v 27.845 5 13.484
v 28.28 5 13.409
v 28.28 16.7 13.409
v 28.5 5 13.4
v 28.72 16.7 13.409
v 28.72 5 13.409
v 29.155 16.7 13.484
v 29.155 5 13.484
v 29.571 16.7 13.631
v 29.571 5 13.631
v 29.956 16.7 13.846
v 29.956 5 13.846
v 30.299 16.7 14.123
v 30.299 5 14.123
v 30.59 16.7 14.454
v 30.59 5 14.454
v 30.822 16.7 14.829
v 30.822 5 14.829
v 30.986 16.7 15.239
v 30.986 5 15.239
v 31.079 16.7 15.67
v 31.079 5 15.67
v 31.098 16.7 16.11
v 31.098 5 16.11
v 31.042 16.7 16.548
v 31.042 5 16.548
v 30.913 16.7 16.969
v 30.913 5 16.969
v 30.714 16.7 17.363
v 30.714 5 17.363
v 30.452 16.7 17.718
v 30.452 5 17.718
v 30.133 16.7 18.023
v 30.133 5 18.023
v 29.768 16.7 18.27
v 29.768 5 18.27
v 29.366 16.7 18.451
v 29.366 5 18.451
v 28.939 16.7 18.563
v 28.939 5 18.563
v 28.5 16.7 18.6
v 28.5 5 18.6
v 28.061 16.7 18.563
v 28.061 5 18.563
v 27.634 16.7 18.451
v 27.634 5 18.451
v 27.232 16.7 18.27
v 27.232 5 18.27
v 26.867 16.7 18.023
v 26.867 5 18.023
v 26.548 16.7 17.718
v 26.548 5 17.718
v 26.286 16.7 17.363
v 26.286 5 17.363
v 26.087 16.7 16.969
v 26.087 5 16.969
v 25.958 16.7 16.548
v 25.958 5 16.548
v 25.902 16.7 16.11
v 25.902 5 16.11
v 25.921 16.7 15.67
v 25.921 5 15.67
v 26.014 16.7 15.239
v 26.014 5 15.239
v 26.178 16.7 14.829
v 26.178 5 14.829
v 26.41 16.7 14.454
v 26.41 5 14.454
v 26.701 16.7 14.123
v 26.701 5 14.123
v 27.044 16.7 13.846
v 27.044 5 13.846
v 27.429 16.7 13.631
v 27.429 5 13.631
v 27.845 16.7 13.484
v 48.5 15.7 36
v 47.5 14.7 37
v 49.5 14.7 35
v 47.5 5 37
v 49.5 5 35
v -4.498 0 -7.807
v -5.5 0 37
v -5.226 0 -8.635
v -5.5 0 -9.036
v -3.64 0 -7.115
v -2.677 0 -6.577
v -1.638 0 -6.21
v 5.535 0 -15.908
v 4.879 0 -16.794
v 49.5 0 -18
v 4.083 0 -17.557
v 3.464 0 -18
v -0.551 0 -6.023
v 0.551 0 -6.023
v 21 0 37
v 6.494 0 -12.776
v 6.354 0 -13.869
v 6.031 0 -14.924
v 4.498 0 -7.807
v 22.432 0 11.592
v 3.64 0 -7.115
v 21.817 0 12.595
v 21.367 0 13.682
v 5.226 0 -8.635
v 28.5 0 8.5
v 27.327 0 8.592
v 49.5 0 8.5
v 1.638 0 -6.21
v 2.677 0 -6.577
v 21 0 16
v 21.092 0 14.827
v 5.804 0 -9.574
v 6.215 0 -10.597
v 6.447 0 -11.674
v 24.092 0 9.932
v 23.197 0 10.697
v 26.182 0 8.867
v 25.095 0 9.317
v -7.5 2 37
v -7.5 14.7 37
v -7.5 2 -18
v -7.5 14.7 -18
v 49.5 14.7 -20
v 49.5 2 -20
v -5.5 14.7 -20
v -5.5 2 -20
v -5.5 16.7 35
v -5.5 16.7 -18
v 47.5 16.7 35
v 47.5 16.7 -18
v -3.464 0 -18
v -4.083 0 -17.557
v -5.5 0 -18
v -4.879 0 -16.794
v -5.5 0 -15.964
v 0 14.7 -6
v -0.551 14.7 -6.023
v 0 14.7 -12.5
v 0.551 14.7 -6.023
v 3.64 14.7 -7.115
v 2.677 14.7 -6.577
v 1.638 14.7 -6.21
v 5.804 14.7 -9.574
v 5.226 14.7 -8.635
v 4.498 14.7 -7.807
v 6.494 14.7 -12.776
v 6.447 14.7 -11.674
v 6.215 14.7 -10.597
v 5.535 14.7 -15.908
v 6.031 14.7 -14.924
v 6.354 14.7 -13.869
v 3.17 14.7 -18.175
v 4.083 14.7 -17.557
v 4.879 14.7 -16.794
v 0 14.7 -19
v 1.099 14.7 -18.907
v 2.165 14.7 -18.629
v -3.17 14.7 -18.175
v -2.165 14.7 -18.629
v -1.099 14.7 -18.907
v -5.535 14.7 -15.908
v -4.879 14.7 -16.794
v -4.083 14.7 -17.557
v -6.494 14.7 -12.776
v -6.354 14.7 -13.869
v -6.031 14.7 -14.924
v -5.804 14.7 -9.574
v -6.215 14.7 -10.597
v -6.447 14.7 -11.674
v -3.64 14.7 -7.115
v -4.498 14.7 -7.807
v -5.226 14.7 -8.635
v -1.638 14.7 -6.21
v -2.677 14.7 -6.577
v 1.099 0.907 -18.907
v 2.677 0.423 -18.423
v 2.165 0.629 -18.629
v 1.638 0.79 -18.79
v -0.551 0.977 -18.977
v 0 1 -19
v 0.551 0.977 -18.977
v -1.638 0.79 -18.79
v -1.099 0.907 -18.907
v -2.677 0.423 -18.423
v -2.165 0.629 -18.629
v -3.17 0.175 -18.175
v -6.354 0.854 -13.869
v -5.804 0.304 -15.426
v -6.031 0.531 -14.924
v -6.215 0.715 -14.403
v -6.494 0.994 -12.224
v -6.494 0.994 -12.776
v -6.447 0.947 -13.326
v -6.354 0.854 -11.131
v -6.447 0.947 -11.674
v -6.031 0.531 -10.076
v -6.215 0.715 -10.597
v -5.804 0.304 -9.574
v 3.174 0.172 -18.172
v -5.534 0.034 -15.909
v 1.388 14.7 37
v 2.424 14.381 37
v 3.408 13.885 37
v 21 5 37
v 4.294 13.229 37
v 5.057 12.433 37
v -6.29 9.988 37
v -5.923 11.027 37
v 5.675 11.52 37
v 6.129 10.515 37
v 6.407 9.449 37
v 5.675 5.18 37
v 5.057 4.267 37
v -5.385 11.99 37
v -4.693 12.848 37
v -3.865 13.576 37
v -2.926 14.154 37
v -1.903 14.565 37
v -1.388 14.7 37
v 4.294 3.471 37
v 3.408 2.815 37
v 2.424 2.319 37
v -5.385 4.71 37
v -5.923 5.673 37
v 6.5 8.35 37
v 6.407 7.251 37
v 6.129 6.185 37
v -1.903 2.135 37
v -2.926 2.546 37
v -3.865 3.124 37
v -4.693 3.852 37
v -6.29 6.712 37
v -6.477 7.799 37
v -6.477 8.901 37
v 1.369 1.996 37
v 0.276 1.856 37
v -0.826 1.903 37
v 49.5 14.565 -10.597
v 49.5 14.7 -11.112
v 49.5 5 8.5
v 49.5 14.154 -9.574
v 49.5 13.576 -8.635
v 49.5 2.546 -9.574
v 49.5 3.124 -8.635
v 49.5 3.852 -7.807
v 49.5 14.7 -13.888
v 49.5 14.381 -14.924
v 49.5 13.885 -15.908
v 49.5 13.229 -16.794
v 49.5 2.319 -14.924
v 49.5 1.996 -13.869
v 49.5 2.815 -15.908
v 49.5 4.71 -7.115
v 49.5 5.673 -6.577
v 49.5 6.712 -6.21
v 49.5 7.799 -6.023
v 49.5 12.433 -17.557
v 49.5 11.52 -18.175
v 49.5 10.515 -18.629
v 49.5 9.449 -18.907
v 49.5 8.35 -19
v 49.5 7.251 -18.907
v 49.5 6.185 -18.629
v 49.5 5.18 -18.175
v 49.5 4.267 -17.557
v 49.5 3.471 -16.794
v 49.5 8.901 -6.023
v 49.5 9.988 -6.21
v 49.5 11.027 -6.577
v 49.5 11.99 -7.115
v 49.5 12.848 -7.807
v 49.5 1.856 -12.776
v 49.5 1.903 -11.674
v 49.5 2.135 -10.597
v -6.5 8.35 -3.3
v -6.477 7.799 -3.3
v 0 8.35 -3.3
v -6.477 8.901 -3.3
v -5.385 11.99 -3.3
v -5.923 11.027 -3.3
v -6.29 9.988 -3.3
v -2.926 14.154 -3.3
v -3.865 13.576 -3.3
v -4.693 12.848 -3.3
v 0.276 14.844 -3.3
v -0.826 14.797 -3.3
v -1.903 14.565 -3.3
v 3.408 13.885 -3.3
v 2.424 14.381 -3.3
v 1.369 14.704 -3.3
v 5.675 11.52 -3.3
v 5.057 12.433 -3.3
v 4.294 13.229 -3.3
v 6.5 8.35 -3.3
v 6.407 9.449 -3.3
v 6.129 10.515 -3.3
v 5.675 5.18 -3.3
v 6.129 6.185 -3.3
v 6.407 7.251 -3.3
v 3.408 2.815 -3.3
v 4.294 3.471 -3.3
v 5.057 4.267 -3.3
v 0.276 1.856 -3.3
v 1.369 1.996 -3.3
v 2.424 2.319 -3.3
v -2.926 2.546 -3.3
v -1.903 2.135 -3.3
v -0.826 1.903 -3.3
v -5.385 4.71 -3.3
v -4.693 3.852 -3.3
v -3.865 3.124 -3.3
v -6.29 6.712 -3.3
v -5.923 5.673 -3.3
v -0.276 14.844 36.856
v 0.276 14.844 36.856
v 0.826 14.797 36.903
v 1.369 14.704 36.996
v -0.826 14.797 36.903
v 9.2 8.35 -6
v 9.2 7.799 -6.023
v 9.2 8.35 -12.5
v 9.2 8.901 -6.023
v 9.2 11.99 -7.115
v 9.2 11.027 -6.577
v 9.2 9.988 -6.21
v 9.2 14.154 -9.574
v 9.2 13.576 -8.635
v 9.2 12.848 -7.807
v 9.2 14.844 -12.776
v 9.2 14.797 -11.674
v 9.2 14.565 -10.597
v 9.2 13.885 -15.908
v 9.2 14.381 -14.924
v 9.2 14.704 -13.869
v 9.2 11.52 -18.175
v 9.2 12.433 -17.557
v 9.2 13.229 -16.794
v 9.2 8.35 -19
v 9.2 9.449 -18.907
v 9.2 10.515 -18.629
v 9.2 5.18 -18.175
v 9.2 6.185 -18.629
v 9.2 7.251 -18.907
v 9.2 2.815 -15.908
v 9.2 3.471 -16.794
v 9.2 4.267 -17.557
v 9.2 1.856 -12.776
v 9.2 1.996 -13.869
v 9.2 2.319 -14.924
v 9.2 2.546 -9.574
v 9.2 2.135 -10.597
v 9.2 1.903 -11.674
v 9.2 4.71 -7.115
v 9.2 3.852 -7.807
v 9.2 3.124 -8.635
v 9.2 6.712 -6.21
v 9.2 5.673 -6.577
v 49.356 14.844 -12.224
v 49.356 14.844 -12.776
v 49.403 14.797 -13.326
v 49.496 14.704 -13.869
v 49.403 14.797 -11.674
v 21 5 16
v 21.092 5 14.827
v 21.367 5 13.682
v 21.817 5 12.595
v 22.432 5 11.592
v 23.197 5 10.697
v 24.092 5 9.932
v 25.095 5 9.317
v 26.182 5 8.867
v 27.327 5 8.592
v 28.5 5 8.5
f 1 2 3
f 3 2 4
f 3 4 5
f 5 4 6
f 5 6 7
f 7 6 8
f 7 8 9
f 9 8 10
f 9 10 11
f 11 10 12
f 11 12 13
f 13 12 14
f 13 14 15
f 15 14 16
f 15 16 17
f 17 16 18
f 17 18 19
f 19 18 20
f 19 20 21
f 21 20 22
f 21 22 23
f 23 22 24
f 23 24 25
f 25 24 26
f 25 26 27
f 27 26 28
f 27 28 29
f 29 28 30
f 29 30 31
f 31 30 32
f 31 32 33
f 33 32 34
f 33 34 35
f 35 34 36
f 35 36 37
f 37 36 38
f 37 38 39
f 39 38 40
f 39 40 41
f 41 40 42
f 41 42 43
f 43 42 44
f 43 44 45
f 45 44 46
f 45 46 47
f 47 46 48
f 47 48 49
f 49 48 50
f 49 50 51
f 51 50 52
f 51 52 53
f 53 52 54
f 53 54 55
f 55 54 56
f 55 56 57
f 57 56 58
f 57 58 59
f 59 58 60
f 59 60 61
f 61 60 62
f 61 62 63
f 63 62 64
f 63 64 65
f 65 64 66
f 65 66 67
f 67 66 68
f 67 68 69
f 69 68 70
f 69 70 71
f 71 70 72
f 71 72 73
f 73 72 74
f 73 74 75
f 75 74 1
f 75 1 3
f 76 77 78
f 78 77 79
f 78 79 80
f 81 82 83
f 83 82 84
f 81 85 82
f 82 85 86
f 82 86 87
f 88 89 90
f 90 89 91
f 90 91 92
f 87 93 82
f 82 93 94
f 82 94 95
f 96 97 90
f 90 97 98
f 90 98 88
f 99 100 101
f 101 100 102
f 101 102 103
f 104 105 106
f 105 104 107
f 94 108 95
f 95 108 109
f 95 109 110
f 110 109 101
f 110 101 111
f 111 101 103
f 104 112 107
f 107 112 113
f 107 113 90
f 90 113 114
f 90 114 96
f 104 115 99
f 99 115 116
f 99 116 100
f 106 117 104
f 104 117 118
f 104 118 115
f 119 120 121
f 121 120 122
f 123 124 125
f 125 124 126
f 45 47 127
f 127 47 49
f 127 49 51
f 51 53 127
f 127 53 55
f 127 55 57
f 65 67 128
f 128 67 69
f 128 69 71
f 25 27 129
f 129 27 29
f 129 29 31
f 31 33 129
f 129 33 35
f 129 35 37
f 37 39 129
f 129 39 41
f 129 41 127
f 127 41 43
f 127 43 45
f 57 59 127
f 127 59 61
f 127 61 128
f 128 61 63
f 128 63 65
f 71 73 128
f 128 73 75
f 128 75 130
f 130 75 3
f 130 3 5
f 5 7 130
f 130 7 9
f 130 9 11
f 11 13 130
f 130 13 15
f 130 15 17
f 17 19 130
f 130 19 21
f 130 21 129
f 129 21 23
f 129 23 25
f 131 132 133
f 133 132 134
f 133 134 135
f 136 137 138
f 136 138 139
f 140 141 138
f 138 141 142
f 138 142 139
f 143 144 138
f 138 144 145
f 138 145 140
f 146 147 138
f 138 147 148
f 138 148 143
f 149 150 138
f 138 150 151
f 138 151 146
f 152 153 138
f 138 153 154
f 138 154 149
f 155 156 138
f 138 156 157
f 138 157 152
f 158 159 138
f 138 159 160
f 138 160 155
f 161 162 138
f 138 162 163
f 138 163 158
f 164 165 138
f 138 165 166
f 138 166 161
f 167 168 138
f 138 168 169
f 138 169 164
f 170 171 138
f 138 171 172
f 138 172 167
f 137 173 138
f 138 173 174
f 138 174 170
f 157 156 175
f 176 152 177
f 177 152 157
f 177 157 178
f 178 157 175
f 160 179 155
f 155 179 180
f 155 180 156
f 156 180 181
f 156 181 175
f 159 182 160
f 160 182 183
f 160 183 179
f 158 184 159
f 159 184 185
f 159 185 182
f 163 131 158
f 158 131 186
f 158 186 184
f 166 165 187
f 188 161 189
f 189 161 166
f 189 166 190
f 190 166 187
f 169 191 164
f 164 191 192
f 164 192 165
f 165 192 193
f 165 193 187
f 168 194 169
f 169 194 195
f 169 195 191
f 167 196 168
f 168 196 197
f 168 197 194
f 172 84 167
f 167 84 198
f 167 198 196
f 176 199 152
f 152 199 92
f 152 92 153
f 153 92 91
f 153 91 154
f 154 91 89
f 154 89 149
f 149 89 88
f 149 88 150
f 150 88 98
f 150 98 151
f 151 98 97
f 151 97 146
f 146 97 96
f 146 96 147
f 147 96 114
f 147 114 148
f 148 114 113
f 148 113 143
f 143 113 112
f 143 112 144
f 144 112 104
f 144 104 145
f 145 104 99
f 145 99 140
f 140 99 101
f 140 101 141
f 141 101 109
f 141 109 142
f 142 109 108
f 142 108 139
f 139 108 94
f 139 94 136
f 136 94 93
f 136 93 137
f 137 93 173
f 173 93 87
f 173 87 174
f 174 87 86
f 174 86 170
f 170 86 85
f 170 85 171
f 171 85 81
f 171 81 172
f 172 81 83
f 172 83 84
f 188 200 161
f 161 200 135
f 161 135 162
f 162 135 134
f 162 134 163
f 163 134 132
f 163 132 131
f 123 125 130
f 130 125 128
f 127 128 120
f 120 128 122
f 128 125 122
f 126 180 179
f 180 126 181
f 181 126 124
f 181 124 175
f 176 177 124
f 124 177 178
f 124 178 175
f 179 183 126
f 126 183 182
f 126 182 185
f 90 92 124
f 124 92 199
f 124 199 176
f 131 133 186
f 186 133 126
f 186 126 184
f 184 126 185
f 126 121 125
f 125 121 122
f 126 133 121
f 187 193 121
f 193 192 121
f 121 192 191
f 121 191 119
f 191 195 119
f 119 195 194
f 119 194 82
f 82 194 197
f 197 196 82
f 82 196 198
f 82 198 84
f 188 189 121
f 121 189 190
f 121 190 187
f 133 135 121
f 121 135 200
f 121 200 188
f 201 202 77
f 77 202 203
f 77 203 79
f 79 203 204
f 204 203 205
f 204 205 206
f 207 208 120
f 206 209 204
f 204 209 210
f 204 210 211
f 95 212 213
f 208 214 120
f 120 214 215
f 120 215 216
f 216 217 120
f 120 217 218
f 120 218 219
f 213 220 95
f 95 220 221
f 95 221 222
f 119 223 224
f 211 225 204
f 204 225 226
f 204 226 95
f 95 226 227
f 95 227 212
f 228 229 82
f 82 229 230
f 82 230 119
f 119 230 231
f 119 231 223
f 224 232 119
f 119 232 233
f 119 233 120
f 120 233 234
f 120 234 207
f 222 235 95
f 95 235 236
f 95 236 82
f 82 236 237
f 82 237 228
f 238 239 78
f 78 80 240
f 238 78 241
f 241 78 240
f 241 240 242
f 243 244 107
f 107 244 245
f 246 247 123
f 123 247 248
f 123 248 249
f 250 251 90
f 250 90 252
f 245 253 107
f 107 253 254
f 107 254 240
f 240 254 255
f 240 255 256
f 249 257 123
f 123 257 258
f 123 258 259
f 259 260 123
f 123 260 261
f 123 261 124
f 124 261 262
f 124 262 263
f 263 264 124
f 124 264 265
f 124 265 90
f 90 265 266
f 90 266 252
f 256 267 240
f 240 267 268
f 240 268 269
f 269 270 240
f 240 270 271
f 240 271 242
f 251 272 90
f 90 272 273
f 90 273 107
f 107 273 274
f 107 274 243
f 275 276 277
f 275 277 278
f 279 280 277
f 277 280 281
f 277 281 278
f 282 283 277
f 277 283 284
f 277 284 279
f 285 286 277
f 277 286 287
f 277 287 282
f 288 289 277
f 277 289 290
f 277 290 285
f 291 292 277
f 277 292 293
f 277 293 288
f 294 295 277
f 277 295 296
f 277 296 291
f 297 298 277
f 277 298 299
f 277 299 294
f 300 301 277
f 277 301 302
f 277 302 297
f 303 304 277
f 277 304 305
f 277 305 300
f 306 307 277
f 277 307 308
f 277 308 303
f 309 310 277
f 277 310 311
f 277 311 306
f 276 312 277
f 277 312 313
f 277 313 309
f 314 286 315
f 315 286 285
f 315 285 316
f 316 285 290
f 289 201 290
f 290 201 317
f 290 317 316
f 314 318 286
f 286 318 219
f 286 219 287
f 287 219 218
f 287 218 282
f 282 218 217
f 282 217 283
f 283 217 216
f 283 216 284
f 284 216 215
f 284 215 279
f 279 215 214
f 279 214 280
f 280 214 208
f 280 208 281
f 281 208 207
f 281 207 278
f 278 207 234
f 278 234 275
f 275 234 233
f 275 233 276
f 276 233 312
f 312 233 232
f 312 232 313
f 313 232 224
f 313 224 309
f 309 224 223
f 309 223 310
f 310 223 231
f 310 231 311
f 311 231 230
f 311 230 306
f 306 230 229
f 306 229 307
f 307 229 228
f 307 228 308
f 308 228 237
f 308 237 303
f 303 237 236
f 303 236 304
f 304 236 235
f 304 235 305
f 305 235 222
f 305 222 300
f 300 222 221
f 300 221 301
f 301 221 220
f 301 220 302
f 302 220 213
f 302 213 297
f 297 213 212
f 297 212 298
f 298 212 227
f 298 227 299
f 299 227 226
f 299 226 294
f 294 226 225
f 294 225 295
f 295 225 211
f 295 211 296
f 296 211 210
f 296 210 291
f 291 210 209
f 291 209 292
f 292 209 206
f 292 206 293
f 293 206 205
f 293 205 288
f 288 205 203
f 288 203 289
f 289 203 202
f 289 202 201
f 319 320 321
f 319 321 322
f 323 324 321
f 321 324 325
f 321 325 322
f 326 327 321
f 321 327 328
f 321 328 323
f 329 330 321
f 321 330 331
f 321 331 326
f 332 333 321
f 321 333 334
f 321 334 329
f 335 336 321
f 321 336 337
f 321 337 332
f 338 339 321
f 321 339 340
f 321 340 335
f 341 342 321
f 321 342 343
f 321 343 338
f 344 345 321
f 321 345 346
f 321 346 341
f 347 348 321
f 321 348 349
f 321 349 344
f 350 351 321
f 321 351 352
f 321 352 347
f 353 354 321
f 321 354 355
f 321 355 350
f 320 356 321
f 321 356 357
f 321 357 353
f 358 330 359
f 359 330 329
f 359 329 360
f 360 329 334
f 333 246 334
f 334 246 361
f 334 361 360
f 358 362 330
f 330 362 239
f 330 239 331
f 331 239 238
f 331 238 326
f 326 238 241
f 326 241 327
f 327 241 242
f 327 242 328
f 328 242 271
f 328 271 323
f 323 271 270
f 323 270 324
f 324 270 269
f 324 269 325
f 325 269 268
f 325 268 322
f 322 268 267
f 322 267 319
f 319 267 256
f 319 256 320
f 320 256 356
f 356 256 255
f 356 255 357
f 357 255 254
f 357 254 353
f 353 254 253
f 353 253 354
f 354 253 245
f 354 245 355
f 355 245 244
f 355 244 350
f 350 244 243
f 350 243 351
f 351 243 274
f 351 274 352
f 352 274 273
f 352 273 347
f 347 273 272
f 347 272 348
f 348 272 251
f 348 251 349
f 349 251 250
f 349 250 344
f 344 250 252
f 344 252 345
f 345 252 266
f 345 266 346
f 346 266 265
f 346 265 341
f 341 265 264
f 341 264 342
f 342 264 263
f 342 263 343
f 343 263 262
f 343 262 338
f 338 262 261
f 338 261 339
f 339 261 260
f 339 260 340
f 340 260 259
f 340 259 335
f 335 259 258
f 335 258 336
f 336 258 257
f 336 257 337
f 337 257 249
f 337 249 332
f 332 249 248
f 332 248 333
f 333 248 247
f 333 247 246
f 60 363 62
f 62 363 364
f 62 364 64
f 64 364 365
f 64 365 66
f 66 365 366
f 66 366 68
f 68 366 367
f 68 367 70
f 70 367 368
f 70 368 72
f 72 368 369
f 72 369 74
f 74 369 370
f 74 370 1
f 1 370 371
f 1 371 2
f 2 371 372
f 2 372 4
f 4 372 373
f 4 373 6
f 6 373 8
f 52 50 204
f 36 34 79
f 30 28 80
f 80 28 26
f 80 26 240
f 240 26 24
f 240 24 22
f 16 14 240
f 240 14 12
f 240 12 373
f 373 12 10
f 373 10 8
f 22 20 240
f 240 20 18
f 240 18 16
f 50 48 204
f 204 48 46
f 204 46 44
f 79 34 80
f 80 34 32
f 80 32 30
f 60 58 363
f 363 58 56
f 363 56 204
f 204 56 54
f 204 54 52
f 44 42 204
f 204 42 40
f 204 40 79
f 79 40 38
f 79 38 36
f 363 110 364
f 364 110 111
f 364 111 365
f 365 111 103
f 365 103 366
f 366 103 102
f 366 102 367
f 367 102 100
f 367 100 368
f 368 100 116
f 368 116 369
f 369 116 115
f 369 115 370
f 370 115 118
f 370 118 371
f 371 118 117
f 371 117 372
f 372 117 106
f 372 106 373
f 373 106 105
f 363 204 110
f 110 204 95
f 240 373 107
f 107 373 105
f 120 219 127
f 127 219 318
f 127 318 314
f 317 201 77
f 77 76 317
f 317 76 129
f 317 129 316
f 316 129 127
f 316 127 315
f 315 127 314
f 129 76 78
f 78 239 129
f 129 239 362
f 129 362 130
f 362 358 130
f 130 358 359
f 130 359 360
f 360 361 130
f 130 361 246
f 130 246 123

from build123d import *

# Parameters (mm, degrees)
SKETCH1_W           = 15
SKETCH1_H           = 10
SKETCH1_H_2         = 15
SKETCH1_W_2         = 10
BOSS_EXTRUDE1_DEPTH = 16.7
SKETCH2_R           = 6.5
CUT_EXTRUDE1_DEPTH  = 8.3
SKETCH3_R           = 6.5
CUT_EXTRUDE2_DEPTH  = 8.3
SKETCH4_R           = 6.5
CUT_EXTRUDE3_DEPTH  = 14.7
SKETCH5_W           = 42
SKETCH5_H           = 42
SKETCH5_R           = 2.6
BOSS_EXTRUDE3_DEPTH = 16.7
FILLET9_SIZE        = 2
BOSS_EXTRUDE4_START = 32
SKETCH7_R           = 6.5
BOSS_EXTRUDE4_DEPTH = 32
BOSS_EXTRUDE5_START = 32
SKETCH8_R           = 6.5
BOSS_EXTRUDE5_DEPTH = 32
CUT_EXTRUDE4_DEPTH  = 5
CHAMFER1_SIZE       = 2


with BuildPart() as part:
    # Sketch1 → Boss-Extrude1 (new body)
    with BuildSketch(Plane(origin=(0, 0, 0), x_dir=(1, 0, 0), z_dir=(0, 1, 0))):
        Rectangle(SKETCH1_W, SKETCH1_H)
        with Locations((0, 12.5)):
            Rectangle(SKETCH1_W, SKETCH1_H_2)
        with Locations((12.5, 12.5)):
            Rectangle(SKETCH1_W_2, SKETCH1_H_2)
    extrude(amount=BOSS_EXTRUDE1_DEPTH)

    # Sketch2 → Cut-Extrude1 (cut)
    with BuildSketch(Plane.XY.offset(5)):
        with Locations((0, 8.35)):
            Circle(SKETCH2_R)
    extrude(amount=-CUT_EXTRUDE1_DEPTH, mode=Mode.SUBTRACT)

    # Sketch3 → Cut-Extrude2 (cut)
    with BuildSketch(Plane(origin=(17.5, 0, 0), x_dir=(0, 0, -1), z_dir=(1, 0, 0))):
        with Locations((12.5, 8.35)):
            Circle(SKETCH3_R)
    extrude(amount=-CUT_EXTRUDE2_DEPTH, mode=Mode.SUBTRACT)

    # Sketch4 → Cut-Extrude3 (cut)
    with BuildSketch(Plane.XZ):
        with Locations(Location((0, -12.5, 0), (0, 0, 270))):
            Circle(SKETCH4_R)
    extrude(amount=-CUT_EXTRUDE3_DEPTH, mode=Mode.SUBTRACT)

    # Fillet8
    # the kernel refuses this chamfer: 2 mm, written as the material it takes off along each edge
    with BuildSketch(Plane(origin=(-6.166666667, 1.333333333, -18.666666667), x_dir=(0.7071067811865471, 0, -0.707106781186548), z_dir=(-0.5773502691896263, -0.5773502691896255, -0.5773502691896254)), Plane(origin=(-6.166666667, 15.366666667, -18.666666667), x_dir=(0.7071067811865471, 0.7071067811865478, 0), z_dir=(-0.5773502691896261, 0.5773502691896256, -0.5773502691896256))) as fillet8_piece_1:
        Polygon((-1.414213562, -0.816496581), (1.414213562, -0.816496581), (0, 1.632993162), align=None)
    extrude(amount=2.540341184, mode=Mode.SUBTRACT)
    with BuildSketch(Plane(origin=(-7.5, 0, -25.143365976), x_dir=(-0.027495876610586494, 0.9996219169112968, 0), z_dir=(0, 0, 1)), Plane(origin=(22.643365976, 16.7, -20), x_dir=(0, 0.027495876610585647, 0.9996219169112968), z_dir=(-1, 0, 0)), Plane(origin=(-7.5, 16.7, 10.143365976), x_dir=(-0.027495876610586487, -0.9996219169112968, 0), z_dir=(0, 0, -1)), Plane(origin=(22.643365976, 0, -20), x_dir=(0, 0.9996219169112968, -0.02749587661058563), z_dir=(-1, 0, 0))) as fillet8_piece_2:
        with BuildLine():
            Line((2.05734639, 0), (-0.11309431, -2.054235587))
            Line((-0.11309431, -2.054235587), (-0.153079186, -2.053135752))
            ThreePointArc((-0.153079186, -2.053135752), (-0.068258454, -1.026795659), (-0.039984877, 0.001099835))
            Line((-0.039984877, 0.001099835), (0.001099835, 0.039984877))
            ThreePointArc((0.001099835, 0.039984877), (1.028995329, 0.011711299), (2.058446225, 0.039984877))
            Line((2.058446225, 0.039984877), (2.05734639, 0))
        make_face()
    extrude(amount=35.286731952, mode=Mode.SUBTRACT)
    with BuildSketch(Plane(origin=(-7.5, -5.143365976, -20), x_dir=(-0.02749587661058694, 0, 0.9996219169112968), z_dir=(0, 1, 0))) as fillet8_piece_3:
        with BuildLine():
            Line((2.05734639, 0), (-0.11309431, 2.054235587))
            Line((-0.11309431, 2.054235587), (-0.153079186, 2.053135752))
            ThreePointArc((-0.153079186, 2.053135752), (-0.068258454, 1.026795659), (-0.039984877, -0.001099835))
            Line((-0.039984877, -0.001099835), (0.001099835, -0.039984877))
            ThreePointArc((0.001099835, -0.039984877), (1.028995329, -0.011711299), (2.058446225, -0.039984877))
            Line((2.058446225, -0.039984877), (2.05734639, 0))
        make_face()
    extrude(amount=26.986731952, mode=Mode.SUBTRACT)

    # Sketch5 → Boss-Extrude3 (add)
    with BuildSketch(Plane(origin=(0, 16.7, 0), x_dir=(1, 0, 0), z_dir=(0, 1, 0))):
        with Locations((28.5, -16)):
            Rectangle(SKETCH5_W, SKETCH5_H)
        with Locations(Location((28.5, -16, 0), (0, 0, 270))):
            Circle(SKETCH5_R, mode=Mode.SUBTRACT)
    extrude(amount=-BOSS_EXTRUDE3_DEPTH)

    # Fillet9
    fillet9_edges = [part.edges().sort_by_distance(p)[0] for p in [
        (49.5, 8.35, 37),
    ]]
    chamfer(fillet9_edges, length=FILLET9_SIZE)

    # Sketch7 → Boss-Extrude4 (add)
    with BuildSketch(Plane.XY.offset(5).offset(BOSS_EXTRUDE4_START)):
        Polygon((-5.5, 16.7), (-7.5, 14.7), (-7.5, 2), (-5.5, 0), (7.5, 0), (7.5, 16.7), align=None)
        with Locations((0, 8.35)):
            Circle(SKETCH7_R, mode=Mode.SUBTRACT)
    extrude(amount=-BOSS_EXTRUDE4_DEPTH)

    # Sketch8 → Boss-Extrude5 (add)
    with BuildSketch(Plane(origin=(17.5, 0, 0), x_dir=(0, 0, -1), z_dir=(1, 0, 0)).offset(BOSS_EXTRUDE5_START)):
        Polygon((5, 16.7), (5, 0), (18, 0), (20, 2), (20, 14.7), (18, 16.7), align=None)
        with Locations((12.5, 8.35)):
            Circle(SKETCH8_R, mode=Mode.SUBTRACT)
    extrude(amount=-BOSS_EXTRUDE5_DEPTH)

    # Sketch9 → Cut-Extrude4 (cut)
    with BuildSketch(Plane.XZ):
        with BuildLine():
            Line((28.5, 8.5), (49.5, 8.5))
            Line((49.5, 8.5), (49.5, 35))
            Line((49.5, 35), (47.5, 37))
            Line((47.5, 37), (28.5, 37))
            Line((28.5, 37), (21, 37))
            Line((21, 37), (21, 16))
            ThreePointArc((21, 16), (23.196699141, 10.696699141), (28.5, 8.5))
        make_face()
    extrude(amount=-CUT_EXTRUDE4_DEPTH, mode=Mode.SUBTRACT)

    # Chamfer1
    # the kernel refuses this chamfer: 2 mm, written as the material it takes off along each edge
    with BuildSketch(Plane(origin=(49.5, 16.7, 40.143365976), x_dir=(-0.9996219169112968, 0.027495876610585647, 0), z_dir=(0, 0, -1)), Plane(origin=(-10.643365976, 16.7, 37), x_dir=(0, 0.027495876610585647, -0.9996219169112968), z_dir=(1, 0, 0))) as chamfer1_piece_1:
        Polygon((CHAMFER1_SIZE * 0.999621916911, -CHAMFER1_SIZE * 0.0274958766106), (-CHAMFER1_SIZE * 0.0274958766106, -CHAMFER1_SIZE * 0.999621916911), (0, 0), align=None)
    extrude(amount=63.286731952, mode=Mode.SUBTRACT)


solid = part.part
